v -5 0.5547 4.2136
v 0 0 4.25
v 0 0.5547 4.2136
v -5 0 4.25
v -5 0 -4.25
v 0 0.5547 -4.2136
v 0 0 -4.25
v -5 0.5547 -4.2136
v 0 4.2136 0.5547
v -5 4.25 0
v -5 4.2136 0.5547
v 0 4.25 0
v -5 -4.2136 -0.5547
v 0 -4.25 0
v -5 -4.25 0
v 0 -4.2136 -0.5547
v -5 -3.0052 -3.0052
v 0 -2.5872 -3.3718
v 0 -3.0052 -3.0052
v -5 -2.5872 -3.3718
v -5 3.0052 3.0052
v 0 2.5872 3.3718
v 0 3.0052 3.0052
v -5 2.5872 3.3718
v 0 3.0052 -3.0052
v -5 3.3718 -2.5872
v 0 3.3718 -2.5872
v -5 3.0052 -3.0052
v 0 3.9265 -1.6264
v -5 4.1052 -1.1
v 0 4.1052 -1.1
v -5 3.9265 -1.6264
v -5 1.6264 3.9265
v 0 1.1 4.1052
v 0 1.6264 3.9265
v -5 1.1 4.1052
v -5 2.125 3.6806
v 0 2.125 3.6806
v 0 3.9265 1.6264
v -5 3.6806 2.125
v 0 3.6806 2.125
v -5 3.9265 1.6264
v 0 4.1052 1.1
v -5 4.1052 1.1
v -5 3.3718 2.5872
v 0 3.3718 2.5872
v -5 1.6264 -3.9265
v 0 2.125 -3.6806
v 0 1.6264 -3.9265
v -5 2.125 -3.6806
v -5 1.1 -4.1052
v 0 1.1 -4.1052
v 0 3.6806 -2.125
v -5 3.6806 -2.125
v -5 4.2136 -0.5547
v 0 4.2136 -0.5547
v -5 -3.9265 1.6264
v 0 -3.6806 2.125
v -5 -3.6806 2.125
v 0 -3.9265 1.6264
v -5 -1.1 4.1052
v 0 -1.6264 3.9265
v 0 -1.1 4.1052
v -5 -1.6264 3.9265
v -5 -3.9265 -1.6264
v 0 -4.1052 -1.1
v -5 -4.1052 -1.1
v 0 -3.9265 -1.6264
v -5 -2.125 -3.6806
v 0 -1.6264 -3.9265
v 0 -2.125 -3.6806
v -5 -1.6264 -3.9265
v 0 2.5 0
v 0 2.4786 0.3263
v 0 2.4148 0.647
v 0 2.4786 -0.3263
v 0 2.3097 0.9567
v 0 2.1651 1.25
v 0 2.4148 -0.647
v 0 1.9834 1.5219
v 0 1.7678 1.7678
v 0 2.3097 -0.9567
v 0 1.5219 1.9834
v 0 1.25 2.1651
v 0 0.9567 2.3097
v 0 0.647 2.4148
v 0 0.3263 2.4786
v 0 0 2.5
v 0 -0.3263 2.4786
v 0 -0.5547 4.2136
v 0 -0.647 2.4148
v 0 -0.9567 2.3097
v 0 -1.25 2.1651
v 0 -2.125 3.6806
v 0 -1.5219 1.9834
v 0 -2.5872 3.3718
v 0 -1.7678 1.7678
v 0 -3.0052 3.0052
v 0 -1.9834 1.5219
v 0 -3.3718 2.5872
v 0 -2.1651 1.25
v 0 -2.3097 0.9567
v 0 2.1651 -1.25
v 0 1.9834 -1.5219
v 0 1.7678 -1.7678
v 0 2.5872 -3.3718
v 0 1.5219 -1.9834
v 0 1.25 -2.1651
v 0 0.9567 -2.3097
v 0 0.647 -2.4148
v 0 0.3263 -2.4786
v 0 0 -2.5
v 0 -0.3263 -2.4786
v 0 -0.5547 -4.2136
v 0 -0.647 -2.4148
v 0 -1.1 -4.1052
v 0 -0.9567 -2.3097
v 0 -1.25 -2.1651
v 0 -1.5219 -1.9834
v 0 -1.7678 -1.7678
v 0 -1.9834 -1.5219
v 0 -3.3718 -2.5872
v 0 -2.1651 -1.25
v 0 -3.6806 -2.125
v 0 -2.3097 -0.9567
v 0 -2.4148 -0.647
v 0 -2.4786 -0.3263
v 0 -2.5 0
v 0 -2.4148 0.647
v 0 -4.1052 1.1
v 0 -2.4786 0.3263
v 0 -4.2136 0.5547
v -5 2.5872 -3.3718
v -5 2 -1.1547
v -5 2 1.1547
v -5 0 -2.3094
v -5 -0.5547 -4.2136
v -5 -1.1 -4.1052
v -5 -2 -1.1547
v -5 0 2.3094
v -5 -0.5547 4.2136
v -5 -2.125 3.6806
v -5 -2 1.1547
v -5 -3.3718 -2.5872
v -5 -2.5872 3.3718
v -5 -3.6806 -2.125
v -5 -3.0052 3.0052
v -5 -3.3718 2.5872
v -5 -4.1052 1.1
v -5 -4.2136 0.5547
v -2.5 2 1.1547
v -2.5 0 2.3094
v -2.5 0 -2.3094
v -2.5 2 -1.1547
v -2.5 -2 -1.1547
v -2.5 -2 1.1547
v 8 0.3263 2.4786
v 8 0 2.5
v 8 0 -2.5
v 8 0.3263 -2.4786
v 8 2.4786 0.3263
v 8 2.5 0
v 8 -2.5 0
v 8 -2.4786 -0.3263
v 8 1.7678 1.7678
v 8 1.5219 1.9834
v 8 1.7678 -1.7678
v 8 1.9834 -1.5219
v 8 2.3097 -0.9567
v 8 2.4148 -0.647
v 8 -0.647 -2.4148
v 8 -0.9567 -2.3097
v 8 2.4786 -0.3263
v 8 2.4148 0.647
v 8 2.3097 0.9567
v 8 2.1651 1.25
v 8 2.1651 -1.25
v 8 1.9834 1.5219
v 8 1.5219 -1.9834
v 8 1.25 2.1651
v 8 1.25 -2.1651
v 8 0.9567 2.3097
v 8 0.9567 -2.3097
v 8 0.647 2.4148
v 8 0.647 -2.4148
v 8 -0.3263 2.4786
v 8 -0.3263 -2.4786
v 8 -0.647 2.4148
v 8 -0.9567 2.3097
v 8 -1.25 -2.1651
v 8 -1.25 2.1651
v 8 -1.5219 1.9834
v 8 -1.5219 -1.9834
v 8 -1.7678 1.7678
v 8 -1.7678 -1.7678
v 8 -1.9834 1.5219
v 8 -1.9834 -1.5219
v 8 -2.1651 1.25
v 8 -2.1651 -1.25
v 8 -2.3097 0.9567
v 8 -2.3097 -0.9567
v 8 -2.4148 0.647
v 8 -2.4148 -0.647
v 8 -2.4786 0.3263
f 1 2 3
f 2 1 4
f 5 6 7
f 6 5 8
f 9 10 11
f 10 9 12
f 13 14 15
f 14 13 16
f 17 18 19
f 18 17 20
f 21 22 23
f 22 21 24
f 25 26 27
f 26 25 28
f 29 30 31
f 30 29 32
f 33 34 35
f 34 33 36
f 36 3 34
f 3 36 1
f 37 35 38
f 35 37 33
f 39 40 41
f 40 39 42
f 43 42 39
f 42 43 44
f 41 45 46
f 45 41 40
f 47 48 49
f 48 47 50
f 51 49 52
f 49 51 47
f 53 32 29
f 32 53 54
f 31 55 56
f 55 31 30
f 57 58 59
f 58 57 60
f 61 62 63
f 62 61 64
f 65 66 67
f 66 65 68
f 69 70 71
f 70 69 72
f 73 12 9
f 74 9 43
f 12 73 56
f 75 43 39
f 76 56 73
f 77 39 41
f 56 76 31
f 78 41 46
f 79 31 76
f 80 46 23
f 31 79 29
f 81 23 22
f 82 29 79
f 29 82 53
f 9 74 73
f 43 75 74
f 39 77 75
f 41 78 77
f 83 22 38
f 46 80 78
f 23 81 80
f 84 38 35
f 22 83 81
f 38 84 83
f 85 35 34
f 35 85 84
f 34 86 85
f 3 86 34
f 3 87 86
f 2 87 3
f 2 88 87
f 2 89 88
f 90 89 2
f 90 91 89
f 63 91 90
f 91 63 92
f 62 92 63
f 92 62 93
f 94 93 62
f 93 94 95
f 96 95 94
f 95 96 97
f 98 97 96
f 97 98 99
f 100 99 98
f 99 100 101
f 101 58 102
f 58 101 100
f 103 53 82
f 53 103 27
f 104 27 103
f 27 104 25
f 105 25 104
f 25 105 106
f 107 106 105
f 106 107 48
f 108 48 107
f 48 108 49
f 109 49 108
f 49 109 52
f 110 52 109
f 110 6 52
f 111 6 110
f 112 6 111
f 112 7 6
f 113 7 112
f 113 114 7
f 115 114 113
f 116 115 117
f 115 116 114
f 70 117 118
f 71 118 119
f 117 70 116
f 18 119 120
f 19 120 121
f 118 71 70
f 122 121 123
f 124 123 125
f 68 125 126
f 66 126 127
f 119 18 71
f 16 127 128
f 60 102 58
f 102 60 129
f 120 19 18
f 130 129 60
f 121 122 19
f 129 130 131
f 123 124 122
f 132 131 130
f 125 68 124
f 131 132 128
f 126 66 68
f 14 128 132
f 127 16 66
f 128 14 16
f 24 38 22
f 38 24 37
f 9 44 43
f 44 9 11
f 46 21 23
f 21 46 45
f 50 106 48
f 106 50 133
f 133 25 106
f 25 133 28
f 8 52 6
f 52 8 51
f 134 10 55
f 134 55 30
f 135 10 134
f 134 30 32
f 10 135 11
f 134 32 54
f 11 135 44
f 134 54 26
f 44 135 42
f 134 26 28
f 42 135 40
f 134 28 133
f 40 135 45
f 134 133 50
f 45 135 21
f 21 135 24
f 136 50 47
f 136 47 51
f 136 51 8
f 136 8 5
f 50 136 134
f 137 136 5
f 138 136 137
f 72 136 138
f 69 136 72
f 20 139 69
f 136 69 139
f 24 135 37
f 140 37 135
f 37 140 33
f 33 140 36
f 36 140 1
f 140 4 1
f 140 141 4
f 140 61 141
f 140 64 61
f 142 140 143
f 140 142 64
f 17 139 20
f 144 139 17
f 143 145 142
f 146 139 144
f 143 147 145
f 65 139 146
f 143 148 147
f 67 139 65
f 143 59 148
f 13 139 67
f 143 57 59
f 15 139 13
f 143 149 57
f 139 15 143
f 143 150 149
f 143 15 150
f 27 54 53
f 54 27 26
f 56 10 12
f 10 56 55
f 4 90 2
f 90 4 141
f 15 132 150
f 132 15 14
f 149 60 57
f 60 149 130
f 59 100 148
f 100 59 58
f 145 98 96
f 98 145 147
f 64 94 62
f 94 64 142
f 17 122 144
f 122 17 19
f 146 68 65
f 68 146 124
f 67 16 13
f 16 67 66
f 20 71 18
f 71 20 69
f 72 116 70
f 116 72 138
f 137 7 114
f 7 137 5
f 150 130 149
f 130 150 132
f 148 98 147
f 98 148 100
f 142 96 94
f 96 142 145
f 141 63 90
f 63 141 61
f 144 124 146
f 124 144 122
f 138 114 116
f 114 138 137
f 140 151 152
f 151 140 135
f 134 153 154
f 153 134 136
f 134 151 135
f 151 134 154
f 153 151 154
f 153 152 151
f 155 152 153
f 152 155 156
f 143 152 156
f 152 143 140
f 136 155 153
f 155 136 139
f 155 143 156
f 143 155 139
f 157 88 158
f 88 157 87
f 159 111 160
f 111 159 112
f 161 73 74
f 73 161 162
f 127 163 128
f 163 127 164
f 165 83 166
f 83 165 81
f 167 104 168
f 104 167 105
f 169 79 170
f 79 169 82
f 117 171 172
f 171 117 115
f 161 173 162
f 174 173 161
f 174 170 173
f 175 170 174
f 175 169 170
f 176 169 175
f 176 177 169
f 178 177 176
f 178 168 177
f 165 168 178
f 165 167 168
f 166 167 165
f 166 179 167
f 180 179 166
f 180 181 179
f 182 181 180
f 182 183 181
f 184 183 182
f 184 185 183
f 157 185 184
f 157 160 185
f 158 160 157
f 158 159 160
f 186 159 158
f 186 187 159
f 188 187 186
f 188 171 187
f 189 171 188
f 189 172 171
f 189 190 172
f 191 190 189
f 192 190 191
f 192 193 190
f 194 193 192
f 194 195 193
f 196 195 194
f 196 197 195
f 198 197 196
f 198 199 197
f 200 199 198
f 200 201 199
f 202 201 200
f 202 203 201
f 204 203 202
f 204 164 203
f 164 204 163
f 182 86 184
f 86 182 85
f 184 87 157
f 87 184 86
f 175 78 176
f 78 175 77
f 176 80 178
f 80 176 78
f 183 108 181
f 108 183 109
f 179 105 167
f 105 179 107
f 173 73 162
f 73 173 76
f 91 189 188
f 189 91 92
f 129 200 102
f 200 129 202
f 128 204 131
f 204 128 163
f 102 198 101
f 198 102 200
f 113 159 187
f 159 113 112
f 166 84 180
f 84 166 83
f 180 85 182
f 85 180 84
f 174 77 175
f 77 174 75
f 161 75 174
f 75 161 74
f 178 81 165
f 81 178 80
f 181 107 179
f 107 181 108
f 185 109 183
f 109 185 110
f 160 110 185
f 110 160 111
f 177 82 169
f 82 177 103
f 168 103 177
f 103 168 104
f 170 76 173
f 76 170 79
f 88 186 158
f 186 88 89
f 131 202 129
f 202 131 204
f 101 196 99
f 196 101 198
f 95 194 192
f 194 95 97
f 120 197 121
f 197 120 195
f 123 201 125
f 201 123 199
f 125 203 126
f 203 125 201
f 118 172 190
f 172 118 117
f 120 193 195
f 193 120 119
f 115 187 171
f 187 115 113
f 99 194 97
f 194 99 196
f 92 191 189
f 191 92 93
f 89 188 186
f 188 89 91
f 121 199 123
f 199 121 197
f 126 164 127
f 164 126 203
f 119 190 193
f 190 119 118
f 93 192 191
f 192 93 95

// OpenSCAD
// file: ../../../lib/nutsnbolts/data-access.scad
// Norm Nuts and Bolts - a OpenSCAD library
// Copyright (C) 2012  Johannes Kneer

// This program is free software: you can redistribute it and/or modify
// it under the terms of the GNU General Public License as published by
// the Free Software Foundation, either version 3 of the License, or
// (at your option) any later version.

// This program is distributed in the hope that it will be useful,
// but WITHOUT ANY WARRANTY; without even the implied warranty of
// MERCHANTABILITY or FITNESS FOR A PARTICULAR PURPOSE.  See the
// GNU General Public License for more details.

// You should have received a copy of the GNU General Public License
// along with this program.  If not, see <http://www.gnu.org/licenses/>.


// DATABASE ACCESS FUNCTIONS AND CONSTANTS



// == CONSTANTS ==

// screw table access keys
_NB_S_DESC            = 0;
_NB_S_FAMKEY			    = 1;
_NB_S_LENGTH          = 2;
_NB_S_NOTHREAD_LENGTH = 3;

_NB_F_DESC			      = 0;
_NB_F_OUTER_DIA       = 1;
_NB_F_INNER_DIA       = 2;
_NB_F_LEAD            = 3;
_NB_F_KEY             = 4;
_NB_F_KEY_DEPTH       = 5;
_NB_F_HEAD_HEIGHT     = 6;
_NB_F_HEAD_DIA        = 7;
_NB_F_NUT_KEY         = 8;
_NB_F_NUT_HEIGHT      = 9;
_NB_F_PITCH_FINE      = 10;
_NB_F_PITCH_MEDIUM    = 11;
_NB_F_PITCH_COARSE    = 12;


// == FUNCTIONS ==

// _get_screw("descriptor")   with descriptor = M8x25
//   find the line for a general object in the data matrix

function _get_screw(n) = data_screw[search([n], data_screw)[0]];
function _get_screw_fam(n) = data_screw_fam[search([_get_screw(n)[_NB_S_FAMKEY]], data_screw_fam)[0]];

function _get_fam(n) = data_screw_fam[search([n], data_screw_fam)[0]];


// _get_XXXXX("descriptor") functions
// find a single property in the database

function _get_desc(n)        = _get_screw(n)[_NB_S_DESC];
function _get_famkey(n)         = _get_screw(n)[_NB_S_FAMKEY];
function _get_length(n)      = _get_screw(n)[_NB_S_LENGTH];
function _get_nt_length(n)   = _get_screw(n)[_NB_S_NOTHREAD_LENGTH];

function _get_outer_dia(n)   = _get_screw_fam(n)[_NB_F_OUTER_DIA];
function _get_inner_dia(n)   = _get_screw_fam(n)[_NB_F_INNER_DIA];
function _get_lead(n)        = _get_screw_fam(n)[_NB_F_LEAD];
function _get_head_height(n) = _get_screw_fam(n)[_NB_F_HEAD_HEIGHT];
function _get_head_dia(n)    = _get_screw_fam(n)[_NB_F_HEAD_DIA];
function _get_nut_key(n)     = _get_screw_fam(n)[_NB_F_NUT_KEY];
function _get_nut_height(n)  = _get_screw_fam(n)[_NB_F_NUT_HEIGHT];
function _get_fine_pitch(n)  = _get_screw_fam(n)[_NB_F_PITCH_FINE];
function _get_medium_pitch(n)  = _get_screw_fam(n)[_NB_F_PITCH_MEDIUM];
function _get_coarse_pitch(n)  = _get_screw_fam(n)[_NB_F_PITCH_COARSE];
// main file
/**********************************************************************************************************************
 **
 ** parts/vitamins/screw_M5x8.scad
 **
 ** This file renders a screw of the dimensions specified by the file name.
 **
 **********************************************************************************************************************/

include <../../../lib/nutsnbolts/cyl_head_bolt.scad>;

$fn = 48;
rotate([0, -90, 0])
	screw("M5x8"); 
